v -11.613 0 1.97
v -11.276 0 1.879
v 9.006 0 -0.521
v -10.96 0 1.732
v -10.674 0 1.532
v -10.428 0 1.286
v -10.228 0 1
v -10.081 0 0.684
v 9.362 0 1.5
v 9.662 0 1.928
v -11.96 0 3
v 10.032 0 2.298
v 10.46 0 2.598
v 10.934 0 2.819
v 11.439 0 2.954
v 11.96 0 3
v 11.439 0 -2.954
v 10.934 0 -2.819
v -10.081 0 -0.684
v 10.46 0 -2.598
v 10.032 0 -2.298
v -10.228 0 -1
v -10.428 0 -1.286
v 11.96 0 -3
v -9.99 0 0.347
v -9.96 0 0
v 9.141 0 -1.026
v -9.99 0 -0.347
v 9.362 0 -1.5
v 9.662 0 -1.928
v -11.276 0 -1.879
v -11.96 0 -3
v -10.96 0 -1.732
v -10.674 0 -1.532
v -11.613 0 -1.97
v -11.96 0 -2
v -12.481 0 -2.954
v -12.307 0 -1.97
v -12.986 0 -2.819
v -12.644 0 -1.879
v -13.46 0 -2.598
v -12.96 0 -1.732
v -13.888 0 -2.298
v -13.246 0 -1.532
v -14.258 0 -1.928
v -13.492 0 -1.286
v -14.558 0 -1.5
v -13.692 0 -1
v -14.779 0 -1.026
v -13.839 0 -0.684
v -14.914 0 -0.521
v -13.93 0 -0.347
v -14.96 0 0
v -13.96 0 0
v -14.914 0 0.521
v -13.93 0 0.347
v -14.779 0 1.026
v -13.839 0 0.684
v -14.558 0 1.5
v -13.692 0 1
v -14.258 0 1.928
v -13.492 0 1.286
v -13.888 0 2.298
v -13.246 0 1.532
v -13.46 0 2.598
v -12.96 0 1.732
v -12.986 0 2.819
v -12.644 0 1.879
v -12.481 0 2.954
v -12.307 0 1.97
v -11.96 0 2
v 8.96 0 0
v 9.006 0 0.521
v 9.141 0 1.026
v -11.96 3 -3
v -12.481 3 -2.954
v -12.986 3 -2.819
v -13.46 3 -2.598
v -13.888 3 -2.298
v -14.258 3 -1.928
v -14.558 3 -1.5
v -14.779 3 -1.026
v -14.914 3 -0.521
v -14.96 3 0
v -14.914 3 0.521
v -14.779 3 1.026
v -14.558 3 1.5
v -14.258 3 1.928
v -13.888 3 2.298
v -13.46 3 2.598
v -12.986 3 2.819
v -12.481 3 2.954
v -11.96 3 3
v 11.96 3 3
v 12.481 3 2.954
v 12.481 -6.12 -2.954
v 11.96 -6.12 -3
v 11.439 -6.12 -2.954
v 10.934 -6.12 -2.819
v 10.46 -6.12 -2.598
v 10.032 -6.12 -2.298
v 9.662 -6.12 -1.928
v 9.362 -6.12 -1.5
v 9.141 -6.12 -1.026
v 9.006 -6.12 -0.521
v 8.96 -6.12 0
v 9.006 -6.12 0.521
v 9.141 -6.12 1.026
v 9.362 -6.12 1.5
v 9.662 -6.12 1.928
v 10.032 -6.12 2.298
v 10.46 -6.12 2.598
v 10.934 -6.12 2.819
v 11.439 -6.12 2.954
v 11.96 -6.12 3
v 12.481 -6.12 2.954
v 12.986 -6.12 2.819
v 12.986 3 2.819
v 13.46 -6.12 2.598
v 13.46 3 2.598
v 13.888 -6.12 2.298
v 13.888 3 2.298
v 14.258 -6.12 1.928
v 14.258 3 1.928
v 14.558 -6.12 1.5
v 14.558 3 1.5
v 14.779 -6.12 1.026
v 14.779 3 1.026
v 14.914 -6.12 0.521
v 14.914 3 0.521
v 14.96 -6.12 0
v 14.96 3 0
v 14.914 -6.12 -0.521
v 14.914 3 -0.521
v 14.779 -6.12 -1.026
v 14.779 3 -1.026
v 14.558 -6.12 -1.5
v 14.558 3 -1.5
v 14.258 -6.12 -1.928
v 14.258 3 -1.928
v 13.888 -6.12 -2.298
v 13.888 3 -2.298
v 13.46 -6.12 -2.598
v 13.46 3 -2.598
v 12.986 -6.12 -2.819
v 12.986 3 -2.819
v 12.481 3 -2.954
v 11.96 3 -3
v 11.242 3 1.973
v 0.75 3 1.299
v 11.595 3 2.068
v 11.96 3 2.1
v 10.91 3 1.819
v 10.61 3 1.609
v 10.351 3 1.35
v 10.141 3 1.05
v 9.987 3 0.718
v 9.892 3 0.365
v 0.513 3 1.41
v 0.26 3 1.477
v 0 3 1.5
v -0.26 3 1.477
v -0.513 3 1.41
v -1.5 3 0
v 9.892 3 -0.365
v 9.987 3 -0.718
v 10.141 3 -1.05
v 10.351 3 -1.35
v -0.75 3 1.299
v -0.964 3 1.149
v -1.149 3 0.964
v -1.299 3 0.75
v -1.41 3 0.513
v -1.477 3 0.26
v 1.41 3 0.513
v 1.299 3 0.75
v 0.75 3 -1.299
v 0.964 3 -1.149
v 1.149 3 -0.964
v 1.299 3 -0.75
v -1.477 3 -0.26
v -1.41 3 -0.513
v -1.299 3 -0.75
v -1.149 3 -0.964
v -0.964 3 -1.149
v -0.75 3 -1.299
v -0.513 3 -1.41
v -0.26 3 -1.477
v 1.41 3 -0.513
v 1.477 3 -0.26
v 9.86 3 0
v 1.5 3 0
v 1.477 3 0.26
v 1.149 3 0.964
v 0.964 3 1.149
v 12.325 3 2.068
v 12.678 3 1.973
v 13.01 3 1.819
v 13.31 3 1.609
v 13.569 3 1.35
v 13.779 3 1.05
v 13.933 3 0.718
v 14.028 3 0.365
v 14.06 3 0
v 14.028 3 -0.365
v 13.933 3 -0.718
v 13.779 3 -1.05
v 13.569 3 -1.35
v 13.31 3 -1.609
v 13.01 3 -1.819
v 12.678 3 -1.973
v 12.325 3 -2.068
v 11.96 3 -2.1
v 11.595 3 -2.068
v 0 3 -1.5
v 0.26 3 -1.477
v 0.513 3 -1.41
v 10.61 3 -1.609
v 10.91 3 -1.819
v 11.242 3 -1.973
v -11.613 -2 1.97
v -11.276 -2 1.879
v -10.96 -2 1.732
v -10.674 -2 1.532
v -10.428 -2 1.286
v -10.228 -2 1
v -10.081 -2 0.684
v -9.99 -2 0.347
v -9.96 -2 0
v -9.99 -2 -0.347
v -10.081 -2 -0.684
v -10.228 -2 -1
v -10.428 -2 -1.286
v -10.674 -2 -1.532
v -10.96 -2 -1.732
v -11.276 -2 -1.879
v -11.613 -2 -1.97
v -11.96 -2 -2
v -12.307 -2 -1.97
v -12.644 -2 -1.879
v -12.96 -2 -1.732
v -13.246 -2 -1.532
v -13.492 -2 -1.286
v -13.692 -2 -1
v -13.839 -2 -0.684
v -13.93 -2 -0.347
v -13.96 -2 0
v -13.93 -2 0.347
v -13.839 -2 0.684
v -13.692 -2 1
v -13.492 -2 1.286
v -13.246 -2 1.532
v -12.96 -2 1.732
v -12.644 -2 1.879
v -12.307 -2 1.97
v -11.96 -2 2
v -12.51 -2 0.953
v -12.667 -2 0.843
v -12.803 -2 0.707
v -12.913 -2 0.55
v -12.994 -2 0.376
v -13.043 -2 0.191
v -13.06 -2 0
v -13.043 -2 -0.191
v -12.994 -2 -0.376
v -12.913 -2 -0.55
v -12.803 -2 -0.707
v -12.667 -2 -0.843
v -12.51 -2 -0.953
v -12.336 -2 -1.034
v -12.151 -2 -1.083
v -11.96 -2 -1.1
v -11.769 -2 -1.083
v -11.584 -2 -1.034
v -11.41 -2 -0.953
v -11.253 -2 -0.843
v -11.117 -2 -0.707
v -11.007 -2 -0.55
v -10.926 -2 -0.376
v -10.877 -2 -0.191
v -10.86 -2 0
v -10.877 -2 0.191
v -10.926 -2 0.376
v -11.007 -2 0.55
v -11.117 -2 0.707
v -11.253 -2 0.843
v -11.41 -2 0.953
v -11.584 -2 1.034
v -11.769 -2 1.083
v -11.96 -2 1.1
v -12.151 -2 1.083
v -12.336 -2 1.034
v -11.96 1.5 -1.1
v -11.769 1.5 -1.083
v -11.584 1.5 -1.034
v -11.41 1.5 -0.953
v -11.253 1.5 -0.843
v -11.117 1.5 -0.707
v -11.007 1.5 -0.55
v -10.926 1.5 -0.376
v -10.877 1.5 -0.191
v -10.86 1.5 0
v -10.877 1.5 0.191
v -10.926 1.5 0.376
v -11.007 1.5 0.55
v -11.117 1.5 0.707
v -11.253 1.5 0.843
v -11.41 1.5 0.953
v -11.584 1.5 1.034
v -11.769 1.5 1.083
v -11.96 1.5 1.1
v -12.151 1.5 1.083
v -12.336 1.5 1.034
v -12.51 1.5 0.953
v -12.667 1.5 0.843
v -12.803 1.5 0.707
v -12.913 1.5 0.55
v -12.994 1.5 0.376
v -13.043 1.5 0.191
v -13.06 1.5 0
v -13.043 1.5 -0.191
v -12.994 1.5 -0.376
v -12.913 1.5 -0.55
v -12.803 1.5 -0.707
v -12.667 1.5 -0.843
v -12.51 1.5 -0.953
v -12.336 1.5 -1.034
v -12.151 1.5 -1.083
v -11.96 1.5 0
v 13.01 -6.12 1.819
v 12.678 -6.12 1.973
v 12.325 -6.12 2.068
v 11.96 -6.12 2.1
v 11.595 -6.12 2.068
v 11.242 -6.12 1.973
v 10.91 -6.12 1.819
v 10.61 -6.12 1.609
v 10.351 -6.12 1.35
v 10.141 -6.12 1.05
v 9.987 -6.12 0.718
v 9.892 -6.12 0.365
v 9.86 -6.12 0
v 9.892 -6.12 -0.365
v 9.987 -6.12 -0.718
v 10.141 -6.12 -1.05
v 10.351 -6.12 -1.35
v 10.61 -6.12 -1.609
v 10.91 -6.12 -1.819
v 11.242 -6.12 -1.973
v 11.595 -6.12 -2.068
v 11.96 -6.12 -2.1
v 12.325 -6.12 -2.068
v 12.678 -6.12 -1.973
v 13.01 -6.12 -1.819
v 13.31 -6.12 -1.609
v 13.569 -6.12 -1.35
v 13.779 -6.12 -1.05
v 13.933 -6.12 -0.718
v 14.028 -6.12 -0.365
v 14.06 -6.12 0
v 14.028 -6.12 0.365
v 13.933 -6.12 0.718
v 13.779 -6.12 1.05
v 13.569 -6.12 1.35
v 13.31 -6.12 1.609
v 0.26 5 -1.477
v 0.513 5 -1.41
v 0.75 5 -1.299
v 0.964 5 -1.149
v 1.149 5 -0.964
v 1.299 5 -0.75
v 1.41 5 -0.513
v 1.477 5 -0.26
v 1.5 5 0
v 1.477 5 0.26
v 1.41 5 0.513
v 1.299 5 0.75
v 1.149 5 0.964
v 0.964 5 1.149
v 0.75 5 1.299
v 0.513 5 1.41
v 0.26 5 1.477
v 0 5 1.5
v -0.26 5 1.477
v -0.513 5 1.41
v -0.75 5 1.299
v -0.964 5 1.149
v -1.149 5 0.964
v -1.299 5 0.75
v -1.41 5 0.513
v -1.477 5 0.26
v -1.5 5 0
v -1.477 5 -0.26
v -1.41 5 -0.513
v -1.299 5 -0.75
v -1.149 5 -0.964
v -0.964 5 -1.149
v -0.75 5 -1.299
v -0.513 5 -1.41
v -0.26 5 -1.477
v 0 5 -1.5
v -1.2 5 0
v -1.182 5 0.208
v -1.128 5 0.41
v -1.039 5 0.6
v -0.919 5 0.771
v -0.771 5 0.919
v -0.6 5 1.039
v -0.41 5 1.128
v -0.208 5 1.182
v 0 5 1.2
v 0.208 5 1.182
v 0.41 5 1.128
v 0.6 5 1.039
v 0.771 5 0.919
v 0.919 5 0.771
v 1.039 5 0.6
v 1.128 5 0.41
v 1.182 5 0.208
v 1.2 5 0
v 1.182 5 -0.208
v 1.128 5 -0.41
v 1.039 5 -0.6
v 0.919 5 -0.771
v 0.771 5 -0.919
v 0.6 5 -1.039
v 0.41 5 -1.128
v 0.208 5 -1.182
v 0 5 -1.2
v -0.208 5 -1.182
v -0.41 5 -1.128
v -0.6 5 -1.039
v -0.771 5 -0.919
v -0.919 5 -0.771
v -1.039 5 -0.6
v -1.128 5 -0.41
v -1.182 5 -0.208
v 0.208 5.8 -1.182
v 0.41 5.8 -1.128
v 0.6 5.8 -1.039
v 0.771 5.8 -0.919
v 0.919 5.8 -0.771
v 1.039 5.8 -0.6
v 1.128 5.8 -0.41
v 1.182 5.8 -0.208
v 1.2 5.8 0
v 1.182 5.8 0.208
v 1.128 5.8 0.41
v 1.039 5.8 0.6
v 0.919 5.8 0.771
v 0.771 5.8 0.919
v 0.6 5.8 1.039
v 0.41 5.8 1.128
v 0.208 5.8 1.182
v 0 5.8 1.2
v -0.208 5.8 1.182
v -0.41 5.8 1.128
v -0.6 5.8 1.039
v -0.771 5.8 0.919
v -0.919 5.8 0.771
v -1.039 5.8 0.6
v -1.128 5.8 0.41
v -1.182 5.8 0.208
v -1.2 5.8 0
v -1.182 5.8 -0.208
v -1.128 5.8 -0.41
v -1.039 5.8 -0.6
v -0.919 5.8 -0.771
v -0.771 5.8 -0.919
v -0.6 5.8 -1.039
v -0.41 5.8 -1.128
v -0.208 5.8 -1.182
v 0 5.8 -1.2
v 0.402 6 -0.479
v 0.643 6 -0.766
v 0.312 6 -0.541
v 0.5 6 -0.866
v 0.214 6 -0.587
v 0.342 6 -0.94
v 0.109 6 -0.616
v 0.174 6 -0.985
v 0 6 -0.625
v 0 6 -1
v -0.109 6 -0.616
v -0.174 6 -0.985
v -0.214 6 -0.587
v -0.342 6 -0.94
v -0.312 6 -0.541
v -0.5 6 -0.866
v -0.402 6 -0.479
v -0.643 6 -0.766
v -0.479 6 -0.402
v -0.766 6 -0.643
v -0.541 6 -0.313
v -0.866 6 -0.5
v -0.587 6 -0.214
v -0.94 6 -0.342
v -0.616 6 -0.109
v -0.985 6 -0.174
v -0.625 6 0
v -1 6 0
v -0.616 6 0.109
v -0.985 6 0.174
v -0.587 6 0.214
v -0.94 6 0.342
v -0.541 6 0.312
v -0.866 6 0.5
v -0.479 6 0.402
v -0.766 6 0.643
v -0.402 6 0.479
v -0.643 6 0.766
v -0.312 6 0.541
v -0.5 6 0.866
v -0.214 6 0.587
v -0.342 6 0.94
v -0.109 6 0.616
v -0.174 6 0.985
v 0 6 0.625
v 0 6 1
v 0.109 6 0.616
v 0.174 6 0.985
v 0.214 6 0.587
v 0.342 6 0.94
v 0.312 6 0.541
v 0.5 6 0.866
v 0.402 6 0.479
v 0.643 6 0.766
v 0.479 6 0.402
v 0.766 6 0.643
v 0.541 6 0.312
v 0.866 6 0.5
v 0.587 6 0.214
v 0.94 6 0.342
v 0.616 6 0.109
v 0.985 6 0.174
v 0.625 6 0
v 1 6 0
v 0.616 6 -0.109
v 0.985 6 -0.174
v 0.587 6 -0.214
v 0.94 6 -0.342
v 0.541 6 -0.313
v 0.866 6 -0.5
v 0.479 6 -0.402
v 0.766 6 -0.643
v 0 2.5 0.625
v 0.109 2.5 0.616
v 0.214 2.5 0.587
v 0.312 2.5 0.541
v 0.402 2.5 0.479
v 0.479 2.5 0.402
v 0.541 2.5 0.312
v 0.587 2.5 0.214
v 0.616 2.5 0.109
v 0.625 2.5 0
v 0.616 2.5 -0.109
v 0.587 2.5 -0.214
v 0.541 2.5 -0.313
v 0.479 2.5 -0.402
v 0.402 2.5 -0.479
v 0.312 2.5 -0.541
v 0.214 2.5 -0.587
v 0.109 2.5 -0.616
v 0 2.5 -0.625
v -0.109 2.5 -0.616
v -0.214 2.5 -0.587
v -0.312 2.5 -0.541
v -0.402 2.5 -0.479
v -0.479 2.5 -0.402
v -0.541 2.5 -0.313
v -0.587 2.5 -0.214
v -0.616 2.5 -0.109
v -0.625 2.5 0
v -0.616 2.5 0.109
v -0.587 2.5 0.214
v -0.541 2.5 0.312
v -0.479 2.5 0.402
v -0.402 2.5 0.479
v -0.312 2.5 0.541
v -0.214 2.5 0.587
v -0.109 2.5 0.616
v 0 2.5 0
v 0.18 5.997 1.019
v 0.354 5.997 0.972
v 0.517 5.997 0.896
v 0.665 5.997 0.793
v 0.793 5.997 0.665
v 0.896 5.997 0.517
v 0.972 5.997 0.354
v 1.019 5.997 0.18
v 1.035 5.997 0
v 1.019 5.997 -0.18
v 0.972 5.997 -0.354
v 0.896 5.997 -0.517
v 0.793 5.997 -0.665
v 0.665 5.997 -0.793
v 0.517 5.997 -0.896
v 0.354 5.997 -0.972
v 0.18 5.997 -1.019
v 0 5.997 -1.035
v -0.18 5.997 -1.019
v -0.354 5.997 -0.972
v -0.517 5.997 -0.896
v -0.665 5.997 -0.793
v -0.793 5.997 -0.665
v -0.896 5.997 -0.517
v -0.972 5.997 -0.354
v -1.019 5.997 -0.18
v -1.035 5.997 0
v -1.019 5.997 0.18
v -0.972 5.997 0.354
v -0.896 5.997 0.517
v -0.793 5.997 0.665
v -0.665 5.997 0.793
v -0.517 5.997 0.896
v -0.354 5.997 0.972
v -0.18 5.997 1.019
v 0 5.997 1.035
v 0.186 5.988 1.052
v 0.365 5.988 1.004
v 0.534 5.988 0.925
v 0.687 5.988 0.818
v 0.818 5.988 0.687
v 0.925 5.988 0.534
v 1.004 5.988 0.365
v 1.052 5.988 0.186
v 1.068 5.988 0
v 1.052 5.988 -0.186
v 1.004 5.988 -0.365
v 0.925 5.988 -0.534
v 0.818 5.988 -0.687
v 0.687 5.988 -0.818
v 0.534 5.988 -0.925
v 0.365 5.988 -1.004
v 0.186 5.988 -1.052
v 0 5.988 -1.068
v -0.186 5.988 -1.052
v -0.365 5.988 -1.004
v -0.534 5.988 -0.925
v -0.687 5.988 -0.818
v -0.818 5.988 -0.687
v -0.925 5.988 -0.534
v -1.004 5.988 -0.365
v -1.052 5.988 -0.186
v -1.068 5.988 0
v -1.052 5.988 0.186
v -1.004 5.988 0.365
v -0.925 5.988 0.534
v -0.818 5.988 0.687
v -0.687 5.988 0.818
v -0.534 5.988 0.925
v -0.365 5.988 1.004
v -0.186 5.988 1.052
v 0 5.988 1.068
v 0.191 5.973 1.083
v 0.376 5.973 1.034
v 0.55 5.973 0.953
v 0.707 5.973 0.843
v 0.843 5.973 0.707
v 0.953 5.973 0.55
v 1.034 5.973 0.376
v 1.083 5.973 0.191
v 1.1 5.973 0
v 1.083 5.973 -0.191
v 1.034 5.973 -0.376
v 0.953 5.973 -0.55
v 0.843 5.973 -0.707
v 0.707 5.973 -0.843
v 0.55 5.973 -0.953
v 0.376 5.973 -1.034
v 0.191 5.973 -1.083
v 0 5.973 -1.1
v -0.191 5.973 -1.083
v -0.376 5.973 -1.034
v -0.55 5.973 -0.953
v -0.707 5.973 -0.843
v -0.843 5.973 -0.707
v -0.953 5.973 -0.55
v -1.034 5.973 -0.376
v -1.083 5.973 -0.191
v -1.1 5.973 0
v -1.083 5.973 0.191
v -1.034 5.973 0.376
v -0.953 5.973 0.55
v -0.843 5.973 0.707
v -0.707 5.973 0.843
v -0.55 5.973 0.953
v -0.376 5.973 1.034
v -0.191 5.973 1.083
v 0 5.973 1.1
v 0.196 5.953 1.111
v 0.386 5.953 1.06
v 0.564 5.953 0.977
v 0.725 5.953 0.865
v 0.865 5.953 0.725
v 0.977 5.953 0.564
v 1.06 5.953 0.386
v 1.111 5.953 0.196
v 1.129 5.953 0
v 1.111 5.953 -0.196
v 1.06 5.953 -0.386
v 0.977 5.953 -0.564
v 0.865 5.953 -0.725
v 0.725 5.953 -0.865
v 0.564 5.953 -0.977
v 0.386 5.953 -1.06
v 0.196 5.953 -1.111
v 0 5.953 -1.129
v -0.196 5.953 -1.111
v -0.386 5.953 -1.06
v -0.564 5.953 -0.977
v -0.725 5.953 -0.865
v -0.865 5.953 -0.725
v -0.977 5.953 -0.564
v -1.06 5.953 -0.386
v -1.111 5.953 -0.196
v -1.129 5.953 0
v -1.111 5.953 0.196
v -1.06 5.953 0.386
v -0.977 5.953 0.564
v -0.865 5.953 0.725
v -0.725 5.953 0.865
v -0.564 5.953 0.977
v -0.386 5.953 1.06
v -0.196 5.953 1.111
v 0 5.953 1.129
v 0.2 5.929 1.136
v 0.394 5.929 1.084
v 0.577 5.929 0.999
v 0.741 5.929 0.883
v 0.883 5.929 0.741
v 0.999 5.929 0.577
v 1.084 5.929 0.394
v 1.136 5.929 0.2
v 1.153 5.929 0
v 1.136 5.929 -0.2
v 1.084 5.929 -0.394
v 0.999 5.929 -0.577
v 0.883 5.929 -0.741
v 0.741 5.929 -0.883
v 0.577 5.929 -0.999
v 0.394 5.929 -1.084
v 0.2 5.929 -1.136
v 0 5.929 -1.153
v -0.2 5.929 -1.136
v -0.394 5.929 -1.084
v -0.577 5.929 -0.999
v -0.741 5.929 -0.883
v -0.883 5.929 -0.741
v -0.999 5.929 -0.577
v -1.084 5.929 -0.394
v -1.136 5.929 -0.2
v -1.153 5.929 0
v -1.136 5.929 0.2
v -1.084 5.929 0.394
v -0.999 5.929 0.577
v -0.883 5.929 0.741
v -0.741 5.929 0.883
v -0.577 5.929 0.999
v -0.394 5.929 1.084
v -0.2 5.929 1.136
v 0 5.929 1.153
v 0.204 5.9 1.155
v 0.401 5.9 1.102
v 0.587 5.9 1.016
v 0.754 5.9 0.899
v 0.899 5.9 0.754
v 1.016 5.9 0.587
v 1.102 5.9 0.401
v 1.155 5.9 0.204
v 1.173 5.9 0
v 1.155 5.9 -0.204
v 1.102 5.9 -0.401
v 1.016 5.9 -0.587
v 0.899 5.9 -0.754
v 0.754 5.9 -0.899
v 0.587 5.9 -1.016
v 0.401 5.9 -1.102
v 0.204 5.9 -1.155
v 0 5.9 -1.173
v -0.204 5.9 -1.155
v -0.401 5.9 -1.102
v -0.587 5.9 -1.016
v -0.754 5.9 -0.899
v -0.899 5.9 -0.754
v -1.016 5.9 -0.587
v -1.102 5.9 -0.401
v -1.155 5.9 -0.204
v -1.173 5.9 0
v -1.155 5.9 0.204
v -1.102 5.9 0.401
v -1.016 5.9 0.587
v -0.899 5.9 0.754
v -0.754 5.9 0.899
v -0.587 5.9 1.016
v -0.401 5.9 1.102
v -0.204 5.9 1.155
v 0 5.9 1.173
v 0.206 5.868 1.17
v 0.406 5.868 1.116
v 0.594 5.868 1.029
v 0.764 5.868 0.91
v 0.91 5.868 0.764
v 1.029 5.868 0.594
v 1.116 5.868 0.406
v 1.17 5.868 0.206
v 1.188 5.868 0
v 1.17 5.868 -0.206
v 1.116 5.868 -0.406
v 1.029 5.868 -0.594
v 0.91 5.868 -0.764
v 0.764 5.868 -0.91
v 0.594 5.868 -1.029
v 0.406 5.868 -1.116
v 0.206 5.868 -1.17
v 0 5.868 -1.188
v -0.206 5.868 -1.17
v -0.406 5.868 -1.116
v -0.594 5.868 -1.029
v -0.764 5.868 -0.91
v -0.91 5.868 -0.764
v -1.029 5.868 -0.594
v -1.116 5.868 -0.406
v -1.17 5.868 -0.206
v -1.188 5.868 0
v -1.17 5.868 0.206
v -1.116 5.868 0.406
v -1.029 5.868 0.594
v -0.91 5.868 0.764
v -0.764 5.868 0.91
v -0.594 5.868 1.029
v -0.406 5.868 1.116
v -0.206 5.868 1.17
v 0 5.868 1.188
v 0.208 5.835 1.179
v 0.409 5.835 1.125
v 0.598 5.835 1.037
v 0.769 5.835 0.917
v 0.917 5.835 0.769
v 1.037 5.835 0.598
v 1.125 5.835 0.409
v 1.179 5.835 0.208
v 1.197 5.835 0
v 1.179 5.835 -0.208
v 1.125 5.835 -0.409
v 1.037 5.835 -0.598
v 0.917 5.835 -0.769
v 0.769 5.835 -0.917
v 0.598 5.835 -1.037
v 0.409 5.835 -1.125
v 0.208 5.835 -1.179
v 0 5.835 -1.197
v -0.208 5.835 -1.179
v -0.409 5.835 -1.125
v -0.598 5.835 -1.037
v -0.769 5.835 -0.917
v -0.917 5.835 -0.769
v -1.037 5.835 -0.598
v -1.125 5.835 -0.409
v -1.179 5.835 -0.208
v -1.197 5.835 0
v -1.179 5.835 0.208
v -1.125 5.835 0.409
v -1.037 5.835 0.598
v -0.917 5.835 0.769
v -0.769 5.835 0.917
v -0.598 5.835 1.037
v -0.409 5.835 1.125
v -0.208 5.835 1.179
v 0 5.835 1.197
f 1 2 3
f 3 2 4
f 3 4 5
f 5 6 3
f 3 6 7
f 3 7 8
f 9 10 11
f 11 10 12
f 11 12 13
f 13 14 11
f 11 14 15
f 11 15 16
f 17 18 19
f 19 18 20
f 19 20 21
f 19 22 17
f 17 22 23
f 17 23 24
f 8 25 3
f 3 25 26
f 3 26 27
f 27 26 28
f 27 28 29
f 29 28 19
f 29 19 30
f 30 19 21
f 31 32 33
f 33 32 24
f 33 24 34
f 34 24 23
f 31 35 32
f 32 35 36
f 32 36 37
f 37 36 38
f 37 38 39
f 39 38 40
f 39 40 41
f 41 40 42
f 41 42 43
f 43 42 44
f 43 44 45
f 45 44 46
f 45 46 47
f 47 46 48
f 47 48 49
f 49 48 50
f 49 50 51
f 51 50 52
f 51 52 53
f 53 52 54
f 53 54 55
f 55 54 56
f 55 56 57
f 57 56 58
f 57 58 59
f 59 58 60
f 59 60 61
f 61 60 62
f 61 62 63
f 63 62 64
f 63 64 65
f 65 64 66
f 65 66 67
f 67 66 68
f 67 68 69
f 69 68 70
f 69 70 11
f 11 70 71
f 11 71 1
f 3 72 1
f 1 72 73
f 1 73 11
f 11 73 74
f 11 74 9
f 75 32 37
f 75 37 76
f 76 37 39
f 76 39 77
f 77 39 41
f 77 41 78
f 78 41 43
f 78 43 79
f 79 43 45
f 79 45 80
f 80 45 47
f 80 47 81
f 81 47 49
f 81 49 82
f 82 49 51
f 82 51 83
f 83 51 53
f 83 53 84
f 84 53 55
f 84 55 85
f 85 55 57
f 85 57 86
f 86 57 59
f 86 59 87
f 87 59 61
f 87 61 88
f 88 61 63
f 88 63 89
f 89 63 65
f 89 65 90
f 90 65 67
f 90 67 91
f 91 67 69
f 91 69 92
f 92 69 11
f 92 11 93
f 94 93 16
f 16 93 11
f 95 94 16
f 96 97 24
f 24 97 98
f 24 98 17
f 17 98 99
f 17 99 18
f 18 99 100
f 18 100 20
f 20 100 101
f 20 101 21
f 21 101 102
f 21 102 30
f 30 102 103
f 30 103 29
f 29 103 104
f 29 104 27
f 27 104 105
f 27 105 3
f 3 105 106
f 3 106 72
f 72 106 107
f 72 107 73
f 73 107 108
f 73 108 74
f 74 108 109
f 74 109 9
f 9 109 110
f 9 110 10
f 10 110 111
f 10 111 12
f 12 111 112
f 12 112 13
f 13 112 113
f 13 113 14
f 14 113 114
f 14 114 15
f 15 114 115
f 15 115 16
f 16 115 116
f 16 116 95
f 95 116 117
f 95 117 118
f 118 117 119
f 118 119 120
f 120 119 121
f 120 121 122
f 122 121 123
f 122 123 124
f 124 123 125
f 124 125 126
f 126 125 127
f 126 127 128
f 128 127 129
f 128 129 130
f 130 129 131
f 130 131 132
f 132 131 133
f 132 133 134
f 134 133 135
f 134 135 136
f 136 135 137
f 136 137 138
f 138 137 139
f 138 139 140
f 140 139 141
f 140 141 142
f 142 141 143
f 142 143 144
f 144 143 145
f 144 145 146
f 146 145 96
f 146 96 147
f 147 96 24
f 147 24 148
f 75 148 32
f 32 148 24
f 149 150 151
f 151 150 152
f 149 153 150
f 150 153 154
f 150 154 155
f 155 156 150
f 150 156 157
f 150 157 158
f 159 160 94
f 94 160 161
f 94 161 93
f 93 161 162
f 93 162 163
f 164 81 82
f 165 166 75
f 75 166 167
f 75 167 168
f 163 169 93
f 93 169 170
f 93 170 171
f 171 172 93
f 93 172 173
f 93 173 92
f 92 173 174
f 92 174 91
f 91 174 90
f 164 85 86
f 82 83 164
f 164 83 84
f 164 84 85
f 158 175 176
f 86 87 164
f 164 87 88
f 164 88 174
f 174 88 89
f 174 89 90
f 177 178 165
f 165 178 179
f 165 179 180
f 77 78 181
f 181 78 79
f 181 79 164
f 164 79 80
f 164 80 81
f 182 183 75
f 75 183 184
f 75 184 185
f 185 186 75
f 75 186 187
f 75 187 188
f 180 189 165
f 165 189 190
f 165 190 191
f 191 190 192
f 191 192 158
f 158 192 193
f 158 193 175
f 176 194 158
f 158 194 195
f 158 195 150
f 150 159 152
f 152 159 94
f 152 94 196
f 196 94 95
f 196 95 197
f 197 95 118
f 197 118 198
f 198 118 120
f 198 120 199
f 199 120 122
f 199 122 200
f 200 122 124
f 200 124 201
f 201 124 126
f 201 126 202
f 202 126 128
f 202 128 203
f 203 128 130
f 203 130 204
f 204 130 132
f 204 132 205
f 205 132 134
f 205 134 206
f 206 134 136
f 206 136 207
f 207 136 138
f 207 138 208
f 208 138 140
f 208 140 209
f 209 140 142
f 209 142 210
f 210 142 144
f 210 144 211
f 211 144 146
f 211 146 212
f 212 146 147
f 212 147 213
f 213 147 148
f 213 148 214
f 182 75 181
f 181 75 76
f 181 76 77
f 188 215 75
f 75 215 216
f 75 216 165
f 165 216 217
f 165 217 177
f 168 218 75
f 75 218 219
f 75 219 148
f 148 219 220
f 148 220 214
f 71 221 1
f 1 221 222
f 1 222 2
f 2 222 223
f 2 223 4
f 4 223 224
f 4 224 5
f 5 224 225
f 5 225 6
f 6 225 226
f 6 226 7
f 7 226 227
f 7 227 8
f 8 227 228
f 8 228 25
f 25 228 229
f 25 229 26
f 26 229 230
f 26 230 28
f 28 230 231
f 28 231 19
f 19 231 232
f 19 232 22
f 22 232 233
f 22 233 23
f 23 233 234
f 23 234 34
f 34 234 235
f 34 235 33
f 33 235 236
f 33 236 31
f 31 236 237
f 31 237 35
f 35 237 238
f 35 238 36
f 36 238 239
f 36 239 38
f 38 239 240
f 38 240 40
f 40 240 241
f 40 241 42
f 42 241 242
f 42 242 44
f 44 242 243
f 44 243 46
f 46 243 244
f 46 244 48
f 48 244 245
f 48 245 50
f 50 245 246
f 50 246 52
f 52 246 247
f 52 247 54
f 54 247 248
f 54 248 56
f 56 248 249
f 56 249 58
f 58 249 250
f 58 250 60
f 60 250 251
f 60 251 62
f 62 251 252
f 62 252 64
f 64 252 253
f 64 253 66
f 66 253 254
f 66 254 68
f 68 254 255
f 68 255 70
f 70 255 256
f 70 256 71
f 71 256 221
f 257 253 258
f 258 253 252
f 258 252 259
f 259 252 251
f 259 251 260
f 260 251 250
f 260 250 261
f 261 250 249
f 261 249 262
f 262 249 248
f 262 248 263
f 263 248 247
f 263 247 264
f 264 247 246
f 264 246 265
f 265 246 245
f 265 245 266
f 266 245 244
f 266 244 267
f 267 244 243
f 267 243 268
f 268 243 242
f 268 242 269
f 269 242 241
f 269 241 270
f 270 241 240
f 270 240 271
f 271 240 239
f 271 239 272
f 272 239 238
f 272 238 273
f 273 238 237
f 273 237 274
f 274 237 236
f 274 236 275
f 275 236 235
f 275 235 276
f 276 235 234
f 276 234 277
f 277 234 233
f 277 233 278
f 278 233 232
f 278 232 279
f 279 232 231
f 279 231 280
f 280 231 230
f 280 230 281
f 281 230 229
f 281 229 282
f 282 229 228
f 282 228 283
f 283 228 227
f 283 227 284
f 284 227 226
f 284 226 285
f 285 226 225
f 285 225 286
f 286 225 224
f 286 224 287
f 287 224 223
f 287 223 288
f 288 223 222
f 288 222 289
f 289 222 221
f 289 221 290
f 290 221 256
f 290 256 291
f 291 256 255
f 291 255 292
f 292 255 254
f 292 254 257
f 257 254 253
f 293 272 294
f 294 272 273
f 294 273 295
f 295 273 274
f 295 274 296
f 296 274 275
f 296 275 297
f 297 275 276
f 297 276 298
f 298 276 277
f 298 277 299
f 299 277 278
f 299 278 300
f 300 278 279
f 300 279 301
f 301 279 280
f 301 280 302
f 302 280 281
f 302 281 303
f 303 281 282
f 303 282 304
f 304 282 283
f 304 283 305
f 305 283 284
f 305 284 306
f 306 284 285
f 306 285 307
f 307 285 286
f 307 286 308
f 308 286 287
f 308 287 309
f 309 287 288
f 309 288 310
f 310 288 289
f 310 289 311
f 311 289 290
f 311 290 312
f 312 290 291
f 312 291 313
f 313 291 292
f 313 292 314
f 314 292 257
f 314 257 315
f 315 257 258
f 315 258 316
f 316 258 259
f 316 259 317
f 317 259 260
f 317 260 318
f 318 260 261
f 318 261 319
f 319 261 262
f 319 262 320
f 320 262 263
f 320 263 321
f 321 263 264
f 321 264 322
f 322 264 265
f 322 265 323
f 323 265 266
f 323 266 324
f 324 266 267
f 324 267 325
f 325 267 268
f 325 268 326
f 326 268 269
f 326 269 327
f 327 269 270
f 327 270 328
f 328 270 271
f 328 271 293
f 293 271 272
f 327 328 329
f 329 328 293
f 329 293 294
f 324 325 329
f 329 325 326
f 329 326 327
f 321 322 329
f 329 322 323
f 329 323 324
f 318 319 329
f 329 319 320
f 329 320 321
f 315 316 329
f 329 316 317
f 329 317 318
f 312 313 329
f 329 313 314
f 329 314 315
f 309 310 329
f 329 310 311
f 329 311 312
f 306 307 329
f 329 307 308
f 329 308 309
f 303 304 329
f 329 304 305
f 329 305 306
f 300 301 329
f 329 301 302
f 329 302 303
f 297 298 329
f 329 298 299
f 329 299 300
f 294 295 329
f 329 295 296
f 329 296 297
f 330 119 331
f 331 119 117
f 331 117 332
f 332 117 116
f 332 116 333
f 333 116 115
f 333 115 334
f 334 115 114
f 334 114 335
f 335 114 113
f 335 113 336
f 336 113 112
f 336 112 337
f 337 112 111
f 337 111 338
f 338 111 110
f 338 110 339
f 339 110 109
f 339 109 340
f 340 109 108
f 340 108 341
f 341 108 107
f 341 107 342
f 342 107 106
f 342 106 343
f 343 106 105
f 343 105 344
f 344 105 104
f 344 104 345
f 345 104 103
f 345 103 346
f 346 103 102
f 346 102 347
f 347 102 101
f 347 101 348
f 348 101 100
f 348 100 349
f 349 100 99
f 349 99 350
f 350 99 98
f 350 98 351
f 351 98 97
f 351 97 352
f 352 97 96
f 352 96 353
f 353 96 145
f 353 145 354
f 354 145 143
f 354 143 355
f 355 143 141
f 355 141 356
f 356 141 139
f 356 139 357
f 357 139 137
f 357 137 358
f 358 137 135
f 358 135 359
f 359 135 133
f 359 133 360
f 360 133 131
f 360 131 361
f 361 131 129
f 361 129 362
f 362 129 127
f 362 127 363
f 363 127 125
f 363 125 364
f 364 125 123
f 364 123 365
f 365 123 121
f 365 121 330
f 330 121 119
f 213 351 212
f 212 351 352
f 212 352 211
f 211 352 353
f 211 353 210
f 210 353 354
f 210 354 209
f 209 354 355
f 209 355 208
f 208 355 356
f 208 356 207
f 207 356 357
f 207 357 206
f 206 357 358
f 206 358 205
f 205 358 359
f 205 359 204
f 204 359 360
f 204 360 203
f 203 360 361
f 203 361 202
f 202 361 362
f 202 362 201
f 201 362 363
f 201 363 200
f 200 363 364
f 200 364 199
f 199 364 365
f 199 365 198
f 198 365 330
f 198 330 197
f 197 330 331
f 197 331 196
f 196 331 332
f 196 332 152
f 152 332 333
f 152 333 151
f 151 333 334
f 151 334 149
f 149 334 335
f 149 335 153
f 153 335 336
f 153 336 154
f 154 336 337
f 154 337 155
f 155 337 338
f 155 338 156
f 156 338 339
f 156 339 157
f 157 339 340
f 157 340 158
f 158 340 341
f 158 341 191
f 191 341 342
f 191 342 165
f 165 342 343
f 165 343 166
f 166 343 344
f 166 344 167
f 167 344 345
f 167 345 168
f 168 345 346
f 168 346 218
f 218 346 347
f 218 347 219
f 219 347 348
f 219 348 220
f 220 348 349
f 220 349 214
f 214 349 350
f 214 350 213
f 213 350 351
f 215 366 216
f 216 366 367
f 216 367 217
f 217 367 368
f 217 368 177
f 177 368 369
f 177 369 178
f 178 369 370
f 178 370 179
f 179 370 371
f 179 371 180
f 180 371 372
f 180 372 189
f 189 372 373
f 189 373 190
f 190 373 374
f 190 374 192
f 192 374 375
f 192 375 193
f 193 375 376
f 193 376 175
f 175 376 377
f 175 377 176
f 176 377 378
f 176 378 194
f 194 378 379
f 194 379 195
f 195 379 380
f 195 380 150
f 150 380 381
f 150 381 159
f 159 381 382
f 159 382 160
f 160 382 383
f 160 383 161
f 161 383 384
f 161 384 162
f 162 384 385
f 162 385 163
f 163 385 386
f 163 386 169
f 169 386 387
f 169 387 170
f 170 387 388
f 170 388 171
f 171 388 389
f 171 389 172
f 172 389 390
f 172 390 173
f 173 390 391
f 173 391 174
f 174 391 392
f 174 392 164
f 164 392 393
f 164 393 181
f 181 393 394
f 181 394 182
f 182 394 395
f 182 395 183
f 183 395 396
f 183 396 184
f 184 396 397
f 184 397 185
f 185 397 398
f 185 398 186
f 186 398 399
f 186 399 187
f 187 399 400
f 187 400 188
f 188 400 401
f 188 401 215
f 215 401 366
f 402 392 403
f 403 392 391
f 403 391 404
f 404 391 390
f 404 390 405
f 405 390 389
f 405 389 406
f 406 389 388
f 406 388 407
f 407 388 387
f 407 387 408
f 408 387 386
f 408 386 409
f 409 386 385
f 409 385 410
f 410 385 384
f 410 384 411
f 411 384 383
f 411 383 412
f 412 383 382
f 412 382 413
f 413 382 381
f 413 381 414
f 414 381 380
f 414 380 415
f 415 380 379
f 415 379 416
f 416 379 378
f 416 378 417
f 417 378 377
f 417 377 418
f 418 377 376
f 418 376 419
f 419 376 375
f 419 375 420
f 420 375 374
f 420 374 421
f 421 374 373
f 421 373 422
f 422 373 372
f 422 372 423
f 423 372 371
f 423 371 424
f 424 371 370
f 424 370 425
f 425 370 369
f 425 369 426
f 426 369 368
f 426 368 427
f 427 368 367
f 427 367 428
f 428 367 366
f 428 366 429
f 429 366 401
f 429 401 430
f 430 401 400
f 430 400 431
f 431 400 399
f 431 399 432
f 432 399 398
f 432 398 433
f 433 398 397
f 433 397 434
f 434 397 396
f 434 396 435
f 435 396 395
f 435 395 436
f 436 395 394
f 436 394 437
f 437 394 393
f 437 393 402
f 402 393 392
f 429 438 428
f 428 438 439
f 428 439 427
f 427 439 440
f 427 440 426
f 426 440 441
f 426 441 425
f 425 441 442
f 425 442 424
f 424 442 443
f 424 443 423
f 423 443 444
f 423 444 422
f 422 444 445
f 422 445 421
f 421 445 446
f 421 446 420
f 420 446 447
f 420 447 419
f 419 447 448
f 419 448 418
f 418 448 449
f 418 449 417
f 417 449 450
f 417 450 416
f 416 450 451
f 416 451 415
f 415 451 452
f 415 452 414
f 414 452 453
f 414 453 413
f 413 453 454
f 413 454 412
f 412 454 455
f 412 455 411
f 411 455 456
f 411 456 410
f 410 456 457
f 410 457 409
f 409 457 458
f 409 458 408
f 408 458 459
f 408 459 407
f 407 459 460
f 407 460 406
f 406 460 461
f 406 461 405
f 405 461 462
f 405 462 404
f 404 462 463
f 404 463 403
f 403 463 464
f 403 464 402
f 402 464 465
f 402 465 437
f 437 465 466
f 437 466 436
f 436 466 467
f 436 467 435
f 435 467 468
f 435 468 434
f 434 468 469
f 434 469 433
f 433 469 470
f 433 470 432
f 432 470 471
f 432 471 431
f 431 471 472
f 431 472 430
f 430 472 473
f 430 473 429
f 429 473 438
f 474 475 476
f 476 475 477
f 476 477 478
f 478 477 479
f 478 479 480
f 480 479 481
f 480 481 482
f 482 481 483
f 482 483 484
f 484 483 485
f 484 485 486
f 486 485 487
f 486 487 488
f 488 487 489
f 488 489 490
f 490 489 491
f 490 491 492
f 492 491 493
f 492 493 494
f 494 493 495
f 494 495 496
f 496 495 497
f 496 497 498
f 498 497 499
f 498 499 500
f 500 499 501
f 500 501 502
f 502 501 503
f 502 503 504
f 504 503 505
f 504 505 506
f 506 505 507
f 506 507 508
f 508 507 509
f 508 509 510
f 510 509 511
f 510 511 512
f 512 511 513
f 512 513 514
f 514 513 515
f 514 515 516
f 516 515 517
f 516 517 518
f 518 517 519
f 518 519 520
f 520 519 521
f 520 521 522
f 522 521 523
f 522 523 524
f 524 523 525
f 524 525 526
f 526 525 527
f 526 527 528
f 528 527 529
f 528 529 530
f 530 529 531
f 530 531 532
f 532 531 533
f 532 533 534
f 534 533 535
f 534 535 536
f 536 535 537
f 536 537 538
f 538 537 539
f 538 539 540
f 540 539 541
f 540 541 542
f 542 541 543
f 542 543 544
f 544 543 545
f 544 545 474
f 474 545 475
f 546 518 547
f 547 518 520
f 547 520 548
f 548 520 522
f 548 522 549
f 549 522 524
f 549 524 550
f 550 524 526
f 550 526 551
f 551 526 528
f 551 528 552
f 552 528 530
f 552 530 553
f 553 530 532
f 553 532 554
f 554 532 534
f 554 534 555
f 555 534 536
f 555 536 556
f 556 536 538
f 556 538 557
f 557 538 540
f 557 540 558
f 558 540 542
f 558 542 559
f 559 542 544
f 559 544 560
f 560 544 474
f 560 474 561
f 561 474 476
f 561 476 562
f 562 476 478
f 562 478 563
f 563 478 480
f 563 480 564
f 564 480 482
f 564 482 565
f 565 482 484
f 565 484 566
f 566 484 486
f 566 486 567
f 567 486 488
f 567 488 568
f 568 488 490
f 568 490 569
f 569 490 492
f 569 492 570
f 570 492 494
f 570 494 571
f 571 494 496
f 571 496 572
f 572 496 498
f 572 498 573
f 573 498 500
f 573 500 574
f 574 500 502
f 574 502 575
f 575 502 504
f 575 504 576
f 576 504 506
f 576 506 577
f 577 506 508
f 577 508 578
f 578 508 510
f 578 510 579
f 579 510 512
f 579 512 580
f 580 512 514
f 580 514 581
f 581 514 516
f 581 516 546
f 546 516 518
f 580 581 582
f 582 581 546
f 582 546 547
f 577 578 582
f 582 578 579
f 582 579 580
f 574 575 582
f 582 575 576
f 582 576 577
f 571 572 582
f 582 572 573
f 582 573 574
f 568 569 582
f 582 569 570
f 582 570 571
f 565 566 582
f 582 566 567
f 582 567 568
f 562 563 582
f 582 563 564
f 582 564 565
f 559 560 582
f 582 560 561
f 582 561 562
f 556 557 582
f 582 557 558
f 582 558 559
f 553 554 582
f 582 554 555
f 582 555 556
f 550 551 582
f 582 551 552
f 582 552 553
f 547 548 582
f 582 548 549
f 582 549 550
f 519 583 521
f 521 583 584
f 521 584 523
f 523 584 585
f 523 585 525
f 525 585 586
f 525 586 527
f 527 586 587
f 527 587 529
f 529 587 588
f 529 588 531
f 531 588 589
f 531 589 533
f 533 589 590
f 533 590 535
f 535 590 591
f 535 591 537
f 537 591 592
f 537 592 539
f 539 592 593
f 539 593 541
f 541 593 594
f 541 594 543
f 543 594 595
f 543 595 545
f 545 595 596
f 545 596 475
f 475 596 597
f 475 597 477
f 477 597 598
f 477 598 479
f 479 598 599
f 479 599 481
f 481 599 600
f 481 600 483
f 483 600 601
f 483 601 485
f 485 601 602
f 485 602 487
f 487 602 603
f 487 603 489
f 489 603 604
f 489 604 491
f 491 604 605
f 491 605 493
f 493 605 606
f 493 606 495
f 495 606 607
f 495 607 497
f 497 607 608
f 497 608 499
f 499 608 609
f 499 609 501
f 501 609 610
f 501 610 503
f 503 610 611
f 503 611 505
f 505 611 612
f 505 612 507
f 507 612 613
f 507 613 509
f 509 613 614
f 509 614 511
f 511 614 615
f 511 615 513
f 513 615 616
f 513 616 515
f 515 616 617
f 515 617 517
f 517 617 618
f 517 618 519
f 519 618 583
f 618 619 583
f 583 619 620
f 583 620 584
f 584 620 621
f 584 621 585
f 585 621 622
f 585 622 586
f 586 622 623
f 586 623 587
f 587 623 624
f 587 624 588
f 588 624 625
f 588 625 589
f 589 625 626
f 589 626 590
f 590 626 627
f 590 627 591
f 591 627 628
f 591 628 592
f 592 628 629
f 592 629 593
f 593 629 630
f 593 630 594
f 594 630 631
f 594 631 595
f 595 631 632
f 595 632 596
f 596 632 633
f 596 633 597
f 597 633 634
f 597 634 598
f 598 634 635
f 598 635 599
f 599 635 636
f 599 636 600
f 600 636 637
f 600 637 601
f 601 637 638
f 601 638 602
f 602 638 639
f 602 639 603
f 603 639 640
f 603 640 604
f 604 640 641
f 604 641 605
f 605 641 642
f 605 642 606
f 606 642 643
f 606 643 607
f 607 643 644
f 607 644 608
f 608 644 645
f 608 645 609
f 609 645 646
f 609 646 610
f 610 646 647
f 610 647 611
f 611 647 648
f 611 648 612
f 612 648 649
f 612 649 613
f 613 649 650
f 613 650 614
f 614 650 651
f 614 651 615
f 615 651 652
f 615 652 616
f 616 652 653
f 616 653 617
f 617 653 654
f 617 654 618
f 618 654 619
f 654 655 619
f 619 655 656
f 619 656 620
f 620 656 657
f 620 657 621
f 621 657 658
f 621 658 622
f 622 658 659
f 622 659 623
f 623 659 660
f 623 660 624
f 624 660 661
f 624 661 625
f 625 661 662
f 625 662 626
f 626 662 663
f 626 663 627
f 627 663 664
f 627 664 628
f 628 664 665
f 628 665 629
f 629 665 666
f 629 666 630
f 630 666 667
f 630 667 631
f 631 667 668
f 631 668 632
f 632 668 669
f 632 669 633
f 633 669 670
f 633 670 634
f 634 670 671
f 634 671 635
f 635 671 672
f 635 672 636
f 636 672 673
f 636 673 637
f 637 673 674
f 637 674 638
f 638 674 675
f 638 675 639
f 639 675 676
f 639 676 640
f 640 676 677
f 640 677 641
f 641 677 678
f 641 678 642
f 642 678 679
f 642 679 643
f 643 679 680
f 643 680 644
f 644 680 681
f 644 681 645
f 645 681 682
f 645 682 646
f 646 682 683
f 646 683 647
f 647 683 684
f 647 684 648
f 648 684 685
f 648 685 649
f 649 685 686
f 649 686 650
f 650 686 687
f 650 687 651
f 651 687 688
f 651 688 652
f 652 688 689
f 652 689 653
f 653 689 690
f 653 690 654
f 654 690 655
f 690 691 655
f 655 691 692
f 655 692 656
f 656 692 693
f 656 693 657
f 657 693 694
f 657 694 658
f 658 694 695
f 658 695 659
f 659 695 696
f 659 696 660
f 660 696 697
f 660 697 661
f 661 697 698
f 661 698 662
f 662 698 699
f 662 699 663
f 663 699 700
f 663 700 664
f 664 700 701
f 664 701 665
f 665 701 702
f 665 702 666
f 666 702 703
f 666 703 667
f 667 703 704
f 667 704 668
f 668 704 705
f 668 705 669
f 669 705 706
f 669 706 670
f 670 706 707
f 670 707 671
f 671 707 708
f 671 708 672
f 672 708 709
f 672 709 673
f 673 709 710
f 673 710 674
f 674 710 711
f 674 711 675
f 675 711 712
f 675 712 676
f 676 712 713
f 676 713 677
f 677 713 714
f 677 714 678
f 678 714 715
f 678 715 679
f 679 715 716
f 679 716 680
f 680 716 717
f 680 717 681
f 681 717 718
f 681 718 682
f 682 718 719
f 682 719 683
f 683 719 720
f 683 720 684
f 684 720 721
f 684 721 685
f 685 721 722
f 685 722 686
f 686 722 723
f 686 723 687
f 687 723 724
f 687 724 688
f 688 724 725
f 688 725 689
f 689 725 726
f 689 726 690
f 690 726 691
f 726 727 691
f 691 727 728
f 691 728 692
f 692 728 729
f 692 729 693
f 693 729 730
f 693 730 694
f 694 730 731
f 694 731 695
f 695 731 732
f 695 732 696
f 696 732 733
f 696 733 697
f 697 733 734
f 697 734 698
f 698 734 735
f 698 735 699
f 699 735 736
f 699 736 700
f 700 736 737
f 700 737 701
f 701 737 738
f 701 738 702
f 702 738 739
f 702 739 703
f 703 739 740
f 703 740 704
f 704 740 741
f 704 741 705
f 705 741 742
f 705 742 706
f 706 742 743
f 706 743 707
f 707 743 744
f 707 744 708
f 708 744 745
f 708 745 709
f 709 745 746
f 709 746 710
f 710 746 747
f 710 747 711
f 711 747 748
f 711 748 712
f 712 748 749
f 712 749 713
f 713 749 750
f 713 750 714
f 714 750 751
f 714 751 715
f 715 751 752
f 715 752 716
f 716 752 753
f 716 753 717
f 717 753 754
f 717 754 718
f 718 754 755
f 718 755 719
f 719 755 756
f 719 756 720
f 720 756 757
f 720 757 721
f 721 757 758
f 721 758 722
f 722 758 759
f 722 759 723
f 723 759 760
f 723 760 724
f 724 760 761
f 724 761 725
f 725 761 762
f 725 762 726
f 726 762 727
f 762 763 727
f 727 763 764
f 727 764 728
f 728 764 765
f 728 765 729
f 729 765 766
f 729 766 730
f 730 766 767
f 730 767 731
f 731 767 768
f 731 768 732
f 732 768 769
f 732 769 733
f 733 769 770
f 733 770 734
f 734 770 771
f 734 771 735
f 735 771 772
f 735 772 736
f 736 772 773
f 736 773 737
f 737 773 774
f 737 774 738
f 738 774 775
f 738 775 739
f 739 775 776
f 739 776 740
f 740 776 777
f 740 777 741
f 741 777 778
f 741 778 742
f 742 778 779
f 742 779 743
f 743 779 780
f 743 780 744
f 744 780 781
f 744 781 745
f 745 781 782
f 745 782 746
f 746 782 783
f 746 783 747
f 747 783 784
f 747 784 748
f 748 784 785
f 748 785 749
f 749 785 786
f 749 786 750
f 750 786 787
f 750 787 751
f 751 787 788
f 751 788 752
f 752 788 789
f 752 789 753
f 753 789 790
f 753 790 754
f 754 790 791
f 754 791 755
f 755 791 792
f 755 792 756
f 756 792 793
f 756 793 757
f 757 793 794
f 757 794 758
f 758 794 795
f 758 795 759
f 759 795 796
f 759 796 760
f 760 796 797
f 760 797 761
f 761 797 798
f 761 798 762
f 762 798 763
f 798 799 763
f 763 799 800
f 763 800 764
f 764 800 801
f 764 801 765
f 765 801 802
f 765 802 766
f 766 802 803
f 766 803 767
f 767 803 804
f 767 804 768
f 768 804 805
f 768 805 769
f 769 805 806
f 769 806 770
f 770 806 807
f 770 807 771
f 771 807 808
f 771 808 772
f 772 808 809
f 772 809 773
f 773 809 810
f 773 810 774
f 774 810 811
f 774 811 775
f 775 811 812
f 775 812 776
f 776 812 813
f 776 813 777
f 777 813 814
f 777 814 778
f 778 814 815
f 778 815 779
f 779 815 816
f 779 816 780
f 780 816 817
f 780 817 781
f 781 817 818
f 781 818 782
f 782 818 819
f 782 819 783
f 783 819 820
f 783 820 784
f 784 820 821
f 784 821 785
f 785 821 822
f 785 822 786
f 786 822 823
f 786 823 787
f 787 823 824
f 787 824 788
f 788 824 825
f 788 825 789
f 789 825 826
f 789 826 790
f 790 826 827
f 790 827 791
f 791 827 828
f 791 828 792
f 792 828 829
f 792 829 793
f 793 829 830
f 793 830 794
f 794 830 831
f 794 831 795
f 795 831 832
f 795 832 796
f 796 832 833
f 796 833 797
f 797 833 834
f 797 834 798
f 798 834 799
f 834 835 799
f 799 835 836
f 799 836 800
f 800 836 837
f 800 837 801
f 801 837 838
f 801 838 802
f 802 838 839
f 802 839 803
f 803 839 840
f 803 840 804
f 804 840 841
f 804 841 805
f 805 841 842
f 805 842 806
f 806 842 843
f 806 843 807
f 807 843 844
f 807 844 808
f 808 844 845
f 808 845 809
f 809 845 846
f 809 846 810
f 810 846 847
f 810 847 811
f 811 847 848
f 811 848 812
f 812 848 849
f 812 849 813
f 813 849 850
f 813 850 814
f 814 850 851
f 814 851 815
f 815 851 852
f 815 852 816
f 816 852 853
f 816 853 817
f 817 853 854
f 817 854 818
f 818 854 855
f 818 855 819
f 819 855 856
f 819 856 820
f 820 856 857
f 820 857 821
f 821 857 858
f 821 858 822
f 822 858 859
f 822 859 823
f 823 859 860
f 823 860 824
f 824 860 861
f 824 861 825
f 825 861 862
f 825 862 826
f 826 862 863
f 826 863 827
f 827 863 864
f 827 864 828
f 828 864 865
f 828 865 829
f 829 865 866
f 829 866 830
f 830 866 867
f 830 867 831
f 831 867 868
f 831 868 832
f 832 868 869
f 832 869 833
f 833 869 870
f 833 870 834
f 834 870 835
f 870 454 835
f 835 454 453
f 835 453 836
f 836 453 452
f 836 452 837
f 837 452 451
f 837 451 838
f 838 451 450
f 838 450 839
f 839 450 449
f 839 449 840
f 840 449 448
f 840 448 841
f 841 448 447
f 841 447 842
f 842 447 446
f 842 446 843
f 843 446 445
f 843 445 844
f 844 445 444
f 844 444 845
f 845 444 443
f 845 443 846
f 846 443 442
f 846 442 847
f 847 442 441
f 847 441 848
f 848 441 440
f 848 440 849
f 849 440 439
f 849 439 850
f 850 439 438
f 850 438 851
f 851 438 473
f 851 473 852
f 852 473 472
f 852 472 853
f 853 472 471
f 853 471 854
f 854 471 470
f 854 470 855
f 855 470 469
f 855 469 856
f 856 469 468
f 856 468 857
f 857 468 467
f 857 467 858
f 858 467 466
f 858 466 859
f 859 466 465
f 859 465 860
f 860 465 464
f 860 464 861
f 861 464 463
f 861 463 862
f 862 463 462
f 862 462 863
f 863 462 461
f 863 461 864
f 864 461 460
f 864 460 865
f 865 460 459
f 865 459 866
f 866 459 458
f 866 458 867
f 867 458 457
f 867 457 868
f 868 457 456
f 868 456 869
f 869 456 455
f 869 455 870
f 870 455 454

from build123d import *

# Parameters (mm, degrees)
BOSS_EXTRUDE1_DEPTH = 3
SKETCH2_R           = 2
BOSS_EXTRUDE2_DEPTH = 2
SKETCH3_R           = 1.1
CUT_EXTRUDE1_DEPTH  = 3.5
SKETCH4_R           = 3
BOSS_EXTRUDE3_DEPTH = 6.12
SKETCH5_R           = 2.1
CUT_EXTRUDE3_DEPTH  = 9.12
SKETCH7_R           = 1.5
BOSS_EXTRUDE4_DEPTH = 2
SKETCH8_R           = 1.2
BOSS_EXTRUDE5_DEPTH = 1
SKETCH9_R           = 0.625
CUT_EXTRUDE6_DEPTH  = 3.5
FILLET2_R           = 0.2


with BuildPart() as part:
    # Sketch1 → Boss-Extrude1 (new body)
    with BuildSketch(Plane(origin=(0, 0, 0), x_dir=(1, 0, 0), z_dir=(0, 1, 0))):
        with BuildLine():
            Line((-11.96, 3), (11.96, 3))
            ThreePointArc((11.96, 3), (14.96, 0), (11.96, -3))
            Line((11.96, -3), (-11.96, -3))
            ThreePointArc((-11.96, -3), (-14.96, 0), (-11.96, 3))
        make_face()
    extrude(amount=BOSS_EXTRUDE1_DEPTH)

    # Sketch2 → Boss-Extrude2 (add)
    with BuildSketch(Plane.XZ):
        with Locations(Location((-11.96, 0, 0), (0, 0, 90))):
            Circle(SKETCH2_R)
    extrude(amount=BOSS_EXTRUDE2_DEPTH)

    # Sketch3 → Cut-Extrude1 (cut)
    with BuildSketch(Plane.XZ.offset(2)):
        with Locations(Location((-11.96, 0, 0), (0, 0, 270))):
            Circle(SKETCH3_R)
    extrude(amount=-CUT_EXTRUDE1_DEPTH, mode=Mode.SUBTRACT)

    # Sketch4 → Boss-Extrude3 (add)
    with BuildSketch(Plane.XZ):
        with Locations(Location((11.96, 0, 0), (0, 0, 270))):
            Circle(SKETCH4_R)
    extrude(amount=BOSS_EXTRUDE3_DEPTH)

    # Sketch5 → Cut-Extrude3 (cut)
    with BuildSketch(Plane.XZ.offset(6.12)):
        with Locations(Location((11.96, 0, 0), (0, 0, 270))):
            Circle(SKETCH5_R)
    extrude(amount=-CUT_EXTRUDE3_DEPTH, mode=Mode.SUBTRACT)

    # Sketch7 → Boss-Extrude4 (add)
    with BuildSketch(Plane(origin=(0, 3, 0), x_dir=(1, 0, 0), z_dir=(0, 1, 0))):
        with Locations(Location((0, 0, 0), (0, 0, 270))):
            Circle(SKETCH7_R)
    extrude(amount=BOSS_EXTRUDE4_DEPTH)

    # Sketch8 → Boss-Extrude5 (add)
    with BuildSketch(Plane(origin=(0, 5, 0), x_dir=(1, 0, 0), z_dir=(0, 1, 0))):
        with Locations(Location((0, 0, 0), (0, 0, 270))):
            Circle(SKETCH8_R)
    extrude(amount=BOSS_EXTRUDE5_DEPTH)

    # Sketch9 → Cut-Extrude6 (cut)
    with BuildSketch(Plane(origin=(0, 6, 0), x_dir=(1, 0, 0), z_dir=(0, 1, 0))):
        with Locations(Location((0, 0, 0), (0, 0, 270))):
            Circle(SKETCH9_R)
    extrude(amount=-CUT_EXTRUDE6_DEPTH, mode=Mode.SUBTRACT)

    # Fillet2
    fillet2_edges = [part.edges().sort_by_distance(p)[0] for p in [
        (0, 6, -1.2),
    ]]
    fillet(fillet2_edges, radius=FILLET2_R)


solid = part.part
